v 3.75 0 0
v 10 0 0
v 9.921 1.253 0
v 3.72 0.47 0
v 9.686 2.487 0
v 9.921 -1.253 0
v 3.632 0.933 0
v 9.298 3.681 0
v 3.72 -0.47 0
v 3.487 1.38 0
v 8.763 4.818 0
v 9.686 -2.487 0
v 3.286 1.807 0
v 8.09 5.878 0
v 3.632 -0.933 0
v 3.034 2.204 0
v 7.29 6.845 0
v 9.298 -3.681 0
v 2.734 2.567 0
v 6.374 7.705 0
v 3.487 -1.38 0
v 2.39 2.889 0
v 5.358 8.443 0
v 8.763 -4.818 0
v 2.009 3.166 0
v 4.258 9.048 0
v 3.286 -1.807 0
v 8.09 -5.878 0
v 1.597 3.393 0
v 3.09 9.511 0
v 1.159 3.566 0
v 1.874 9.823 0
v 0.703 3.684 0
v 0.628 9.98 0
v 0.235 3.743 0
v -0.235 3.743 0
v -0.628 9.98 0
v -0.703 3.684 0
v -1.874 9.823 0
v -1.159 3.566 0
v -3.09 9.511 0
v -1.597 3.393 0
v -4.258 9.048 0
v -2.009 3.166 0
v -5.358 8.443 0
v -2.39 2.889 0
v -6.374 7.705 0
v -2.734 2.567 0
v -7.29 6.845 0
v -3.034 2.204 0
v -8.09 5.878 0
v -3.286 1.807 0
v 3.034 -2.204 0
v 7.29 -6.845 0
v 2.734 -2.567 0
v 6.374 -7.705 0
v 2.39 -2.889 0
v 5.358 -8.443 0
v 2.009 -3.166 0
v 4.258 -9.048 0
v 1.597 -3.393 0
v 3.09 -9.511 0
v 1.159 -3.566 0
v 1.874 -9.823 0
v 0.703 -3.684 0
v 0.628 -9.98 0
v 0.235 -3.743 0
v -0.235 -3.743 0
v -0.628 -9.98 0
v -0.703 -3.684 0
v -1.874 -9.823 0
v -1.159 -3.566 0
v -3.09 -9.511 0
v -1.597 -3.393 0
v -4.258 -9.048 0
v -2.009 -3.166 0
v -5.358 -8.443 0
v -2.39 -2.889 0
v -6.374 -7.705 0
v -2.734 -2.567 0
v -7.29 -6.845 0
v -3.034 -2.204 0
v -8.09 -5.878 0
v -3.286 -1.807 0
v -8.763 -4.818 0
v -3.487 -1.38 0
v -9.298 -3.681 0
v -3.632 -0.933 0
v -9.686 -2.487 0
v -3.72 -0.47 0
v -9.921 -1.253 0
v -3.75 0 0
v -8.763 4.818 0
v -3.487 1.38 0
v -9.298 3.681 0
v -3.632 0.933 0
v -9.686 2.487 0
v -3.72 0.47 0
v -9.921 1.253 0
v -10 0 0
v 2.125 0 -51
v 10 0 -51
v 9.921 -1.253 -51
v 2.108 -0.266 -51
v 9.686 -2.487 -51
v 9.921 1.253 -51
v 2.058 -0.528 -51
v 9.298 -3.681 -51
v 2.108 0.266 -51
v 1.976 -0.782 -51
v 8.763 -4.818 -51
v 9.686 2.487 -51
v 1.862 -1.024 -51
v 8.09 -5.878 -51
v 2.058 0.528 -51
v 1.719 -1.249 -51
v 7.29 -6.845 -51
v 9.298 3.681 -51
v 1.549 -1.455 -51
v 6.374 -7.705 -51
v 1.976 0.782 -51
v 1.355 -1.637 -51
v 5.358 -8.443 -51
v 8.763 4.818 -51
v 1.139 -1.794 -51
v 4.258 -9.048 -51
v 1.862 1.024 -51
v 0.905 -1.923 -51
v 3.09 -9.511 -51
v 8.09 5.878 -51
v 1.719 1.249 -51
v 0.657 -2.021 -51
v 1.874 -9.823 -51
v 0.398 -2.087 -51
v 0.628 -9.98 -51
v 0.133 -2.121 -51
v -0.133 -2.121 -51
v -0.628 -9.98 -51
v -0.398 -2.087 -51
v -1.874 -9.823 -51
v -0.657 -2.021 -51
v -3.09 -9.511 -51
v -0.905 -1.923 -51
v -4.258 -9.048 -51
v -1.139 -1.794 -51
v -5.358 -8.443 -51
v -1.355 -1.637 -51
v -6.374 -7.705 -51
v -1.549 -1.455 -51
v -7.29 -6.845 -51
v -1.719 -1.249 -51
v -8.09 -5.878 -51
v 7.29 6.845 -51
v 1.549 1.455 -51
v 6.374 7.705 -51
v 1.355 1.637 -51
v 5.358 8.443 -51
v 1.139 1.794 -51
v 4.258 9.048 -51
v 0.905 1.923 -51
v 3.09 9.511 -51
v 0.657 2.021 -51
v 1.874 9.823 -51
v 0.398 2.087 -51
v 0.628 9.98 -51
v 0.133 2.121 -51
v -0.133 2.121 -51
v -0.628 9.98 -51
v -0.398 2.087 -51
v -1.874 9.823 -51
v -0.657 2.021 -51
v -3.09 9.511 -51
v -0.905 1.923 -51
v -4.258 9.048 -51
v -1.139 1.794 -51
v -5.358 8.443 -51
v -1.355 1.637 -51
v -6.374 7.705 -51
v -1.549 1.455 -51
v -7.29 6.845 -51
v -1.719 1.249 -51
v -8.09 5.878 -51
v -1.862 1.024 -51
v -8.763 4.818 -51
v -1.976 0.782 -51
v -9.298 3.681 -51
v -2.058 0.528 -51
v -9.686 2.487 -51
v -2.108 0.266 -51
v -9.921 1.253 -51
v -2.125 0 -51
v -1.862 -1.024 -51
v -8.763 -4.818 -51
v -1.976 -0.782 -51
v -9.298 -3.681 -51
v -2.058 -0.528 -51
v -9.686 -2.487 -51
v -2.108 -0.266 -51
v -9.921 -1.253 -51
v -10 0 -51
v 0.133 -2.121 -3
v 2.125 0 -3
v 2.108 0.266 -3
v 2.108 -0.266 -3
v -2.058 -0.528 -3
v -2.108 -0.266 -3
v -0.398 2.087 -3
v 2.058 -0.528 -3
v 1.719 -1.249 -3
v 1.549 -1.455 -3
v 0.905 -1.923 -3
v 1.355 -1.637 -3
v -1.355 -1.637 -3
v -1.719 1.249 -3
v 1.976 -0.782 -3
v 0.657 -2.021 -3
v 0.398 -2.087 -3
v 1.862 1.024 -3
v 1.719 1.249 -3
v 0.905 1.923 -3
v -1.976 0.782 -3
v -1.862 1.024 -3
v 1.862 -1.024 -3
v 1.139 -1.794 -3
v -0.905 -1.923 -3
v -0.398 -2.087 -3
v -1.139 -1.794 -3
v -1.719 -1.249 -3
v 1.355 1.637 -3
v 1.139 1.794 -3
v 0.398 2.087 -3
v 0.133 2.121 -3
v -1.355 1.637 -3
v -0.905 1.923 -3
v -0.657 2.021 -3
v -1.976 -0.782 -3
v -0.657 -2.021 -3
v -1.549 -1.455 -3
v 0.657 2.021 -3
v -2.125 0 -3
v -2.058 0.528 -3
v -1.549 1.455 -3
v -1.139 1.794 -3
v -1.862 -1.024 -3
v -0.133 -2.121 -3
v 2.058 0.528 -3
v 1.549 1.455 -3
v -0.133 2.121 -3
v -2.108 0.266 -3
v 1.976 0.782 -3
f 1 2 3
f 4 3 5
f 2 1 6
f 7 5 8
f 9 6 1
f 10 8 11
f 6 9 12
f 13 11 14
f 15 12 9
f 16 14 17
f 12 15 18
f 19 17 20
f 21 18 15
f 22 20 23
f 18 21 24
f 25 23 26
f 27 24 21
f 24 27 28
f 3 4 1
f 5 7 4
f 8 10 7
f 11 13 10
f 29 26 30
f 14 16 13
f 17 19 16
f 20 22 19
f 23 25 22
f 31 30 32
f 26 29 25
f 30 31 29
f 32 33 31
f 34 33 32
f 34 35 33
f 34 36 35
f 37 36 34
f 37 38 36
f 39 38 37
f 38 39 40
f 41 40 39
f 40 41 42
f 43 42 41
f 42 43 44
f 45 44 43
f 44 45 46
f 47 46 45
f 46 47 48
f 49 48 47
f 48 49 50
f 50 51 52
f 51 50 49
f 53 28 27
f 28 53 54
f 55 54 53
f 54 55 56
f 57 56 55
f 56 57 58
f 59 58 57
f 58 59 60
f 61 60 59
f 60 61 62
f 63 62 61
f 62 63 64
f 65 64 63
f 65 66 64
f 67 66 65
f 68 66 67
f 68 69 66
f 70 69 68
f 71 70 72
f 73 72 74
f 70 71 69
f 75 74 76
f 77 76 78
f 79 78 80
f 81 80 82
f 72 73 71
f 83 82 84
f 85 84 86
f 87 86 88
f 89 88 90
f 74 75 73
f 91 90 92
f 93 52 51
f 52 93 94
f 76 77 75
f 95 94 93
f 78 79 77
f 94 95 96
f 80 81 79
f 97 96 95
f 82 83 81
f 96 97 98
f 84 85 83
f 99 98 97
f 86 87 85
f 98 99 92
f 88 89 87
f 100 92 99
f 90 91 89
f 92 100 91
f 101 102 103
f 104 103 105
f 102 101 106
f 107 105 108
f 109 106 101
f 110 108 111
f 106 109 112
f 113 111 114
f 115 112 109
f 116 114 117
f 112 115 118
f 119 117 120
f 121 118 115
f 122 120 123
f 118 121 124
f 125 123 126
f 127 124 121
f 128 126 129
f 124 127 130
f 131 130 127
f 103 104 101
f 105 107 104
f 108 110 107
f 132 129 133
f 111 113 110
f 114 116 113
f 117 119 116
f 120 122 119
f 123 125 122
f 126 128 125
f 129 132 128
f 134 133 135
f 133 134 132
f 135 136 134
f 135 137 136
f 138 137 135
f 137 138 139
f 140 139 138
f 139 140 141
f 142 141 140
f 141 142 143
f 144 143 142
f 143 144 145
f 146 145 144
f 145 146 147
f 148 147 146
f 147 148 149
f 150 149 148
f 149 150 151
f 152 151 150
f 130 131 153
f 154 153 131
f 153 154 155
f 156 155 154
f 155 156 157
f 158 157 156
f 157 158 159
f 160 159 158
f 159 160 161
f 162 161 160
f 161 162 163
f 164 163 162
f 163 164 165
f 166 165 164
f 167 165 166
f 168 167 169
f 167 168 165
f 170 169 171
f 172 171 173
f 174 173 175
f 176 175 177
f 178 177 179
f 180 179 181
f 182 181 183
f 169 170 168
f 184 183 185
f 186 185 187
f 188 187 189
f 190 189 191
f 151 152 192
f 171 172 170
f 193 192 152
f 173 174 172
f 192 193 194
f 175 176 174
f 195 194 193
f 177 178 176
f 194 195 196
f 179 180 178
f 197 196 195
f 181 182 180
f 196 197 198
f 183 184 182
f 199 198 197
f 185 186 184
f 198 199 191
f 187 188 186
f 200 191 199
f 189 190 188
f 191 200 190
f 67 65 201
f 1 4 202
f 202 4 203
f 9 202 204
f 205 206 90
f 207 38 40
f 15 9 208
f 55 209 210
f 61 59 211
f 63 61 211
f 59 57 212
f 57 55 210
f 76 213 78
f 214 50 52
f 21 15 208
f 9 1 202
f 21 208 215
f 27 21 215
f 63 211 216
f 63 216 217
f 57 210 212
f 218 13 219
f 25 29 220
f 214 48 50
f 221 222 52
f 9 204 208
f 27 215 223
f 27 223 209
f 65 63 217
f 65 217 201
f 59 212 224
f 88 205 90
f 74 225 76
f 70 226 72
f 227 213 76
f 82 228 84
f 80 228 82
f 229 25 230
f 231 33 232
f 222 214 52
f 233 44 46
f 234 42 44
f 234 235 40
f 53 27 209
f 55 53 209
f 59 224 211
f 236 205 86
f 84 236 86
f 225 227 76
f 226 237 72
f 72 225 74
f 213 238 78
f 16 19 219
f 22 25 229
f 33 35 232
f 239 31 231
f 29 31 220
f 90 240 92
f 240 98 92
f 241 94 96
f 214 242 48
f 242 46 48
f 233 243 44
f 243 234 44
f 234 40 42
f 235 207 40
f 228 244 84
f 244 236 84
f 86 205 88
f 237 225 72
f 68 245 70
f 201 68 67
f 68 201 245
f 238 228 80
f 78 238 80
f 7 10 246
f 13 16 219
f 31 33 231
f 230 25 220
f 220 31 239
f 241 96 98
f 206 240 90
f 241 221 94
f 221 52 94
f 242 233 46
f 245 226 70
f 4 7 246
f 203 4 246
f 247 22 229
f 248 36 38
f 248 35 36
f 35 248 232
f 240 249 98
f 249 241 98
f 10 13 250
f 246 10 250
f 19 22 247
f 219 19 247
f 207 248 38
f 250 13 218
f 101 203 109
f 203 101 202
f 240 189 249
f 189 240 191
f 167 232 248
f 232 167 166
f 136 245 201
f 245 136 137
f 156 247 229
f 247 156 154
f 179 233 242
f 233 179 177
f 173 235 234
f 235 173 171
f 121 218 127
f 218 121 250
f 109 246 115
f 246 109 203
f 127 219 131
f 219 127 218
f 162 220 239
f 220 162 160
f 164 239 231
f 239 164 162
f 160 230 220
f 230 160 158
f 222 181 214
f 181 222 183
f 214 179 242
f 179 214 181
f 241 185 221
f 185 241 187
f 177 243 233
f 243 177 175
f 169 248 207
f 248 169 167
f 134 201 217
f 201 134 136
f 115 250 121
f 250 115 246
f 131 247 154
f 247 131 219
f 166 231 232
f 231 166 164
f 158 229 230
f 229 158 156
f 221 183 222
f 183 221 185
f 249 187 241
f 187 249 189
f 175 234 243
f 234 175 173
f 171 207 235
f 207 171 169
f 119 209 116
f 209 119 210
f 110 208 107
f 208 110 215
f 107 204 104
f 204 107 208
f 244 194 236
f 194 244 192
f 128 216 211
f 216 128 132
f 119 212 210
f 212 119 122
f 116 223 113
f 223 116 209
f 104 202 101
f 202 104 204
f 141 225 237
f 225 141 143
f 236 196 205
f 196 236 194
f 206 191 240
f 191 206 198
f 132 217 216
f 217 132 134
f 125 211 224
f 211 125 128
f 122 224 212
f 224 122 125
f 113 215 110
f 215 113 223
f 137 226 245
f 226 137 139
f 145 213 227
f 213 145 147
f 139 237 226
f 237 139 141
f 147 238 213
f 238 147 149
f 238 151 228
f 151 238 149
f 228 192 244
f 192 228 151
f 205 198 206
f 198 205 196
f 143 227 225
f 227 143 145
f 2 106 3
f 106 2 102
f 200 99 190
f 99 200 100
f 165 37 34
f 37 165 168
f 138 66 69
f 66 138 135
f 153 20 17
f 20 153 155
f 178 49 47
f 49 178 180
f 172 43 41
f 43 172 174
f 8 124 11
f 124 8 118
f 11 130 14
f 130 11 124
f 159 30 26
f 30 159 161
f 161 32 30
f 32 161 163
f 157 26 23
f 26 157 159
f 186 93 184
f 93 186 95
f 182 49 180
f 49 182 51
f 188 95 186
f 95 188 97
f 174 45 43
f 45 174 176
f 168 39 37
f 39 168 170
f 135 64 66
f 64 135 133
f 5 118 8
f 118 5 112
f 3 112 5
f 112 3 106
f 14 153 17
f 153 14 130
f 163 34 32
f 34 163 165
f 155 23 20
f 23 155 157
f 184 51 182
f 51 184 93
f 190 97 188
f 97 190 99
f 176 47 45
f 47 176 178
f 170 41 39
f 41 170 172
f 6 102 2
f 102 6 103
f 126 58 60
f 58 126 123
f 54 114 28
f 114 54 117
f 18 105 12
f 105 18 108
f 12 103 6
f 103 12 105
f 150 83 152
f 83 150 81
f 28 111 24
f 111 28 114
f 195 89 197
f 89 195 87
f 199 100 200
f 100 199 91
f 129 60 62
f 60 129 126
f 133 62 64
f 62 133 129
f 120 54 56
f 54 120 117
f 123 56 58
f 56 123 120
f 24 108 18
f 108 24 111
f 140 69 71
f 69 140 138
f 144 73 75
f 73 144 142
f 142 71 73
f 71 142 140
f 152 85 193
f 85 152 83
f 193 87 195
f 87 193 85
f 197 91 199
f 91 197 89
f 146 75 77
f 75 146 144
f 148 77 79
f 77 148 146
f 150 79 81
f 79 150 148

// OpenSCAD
$fn = 50;


difference() {
	union() {
		translate(v = [0, 0, -51.0000000000]) {
			cylinder(h = 51, r = 10.0000000000);
		}
		cylinder(h = 0, r = 20.0000000000);
	}
	union() {
		translate(v = [0, 0, 0]) {
			rotate(a = [0, 0, 0]) {
				difference() {
					union() {
						#translate(v = [0, 0, -51.0000000000]) {
							cylinder(h = 51, r = 2.0000000000);
						}
						#translate(v = [0, 0, -3]) {
							cylinder(h = 3, r1 = 2.1250000000, r2 = 3.7500000000);
						}
						#translate(v = [0, 0, -51.0000000000]) {
							cylinder(h = 51, r = 2.1250000000);
						}
						#translate(v = [0, 0, -51.0000000000]) {
							cylinder(h = 51, r = 2.0000000000);
						}
					}
					union();
				}
			}
		}
	}
}
